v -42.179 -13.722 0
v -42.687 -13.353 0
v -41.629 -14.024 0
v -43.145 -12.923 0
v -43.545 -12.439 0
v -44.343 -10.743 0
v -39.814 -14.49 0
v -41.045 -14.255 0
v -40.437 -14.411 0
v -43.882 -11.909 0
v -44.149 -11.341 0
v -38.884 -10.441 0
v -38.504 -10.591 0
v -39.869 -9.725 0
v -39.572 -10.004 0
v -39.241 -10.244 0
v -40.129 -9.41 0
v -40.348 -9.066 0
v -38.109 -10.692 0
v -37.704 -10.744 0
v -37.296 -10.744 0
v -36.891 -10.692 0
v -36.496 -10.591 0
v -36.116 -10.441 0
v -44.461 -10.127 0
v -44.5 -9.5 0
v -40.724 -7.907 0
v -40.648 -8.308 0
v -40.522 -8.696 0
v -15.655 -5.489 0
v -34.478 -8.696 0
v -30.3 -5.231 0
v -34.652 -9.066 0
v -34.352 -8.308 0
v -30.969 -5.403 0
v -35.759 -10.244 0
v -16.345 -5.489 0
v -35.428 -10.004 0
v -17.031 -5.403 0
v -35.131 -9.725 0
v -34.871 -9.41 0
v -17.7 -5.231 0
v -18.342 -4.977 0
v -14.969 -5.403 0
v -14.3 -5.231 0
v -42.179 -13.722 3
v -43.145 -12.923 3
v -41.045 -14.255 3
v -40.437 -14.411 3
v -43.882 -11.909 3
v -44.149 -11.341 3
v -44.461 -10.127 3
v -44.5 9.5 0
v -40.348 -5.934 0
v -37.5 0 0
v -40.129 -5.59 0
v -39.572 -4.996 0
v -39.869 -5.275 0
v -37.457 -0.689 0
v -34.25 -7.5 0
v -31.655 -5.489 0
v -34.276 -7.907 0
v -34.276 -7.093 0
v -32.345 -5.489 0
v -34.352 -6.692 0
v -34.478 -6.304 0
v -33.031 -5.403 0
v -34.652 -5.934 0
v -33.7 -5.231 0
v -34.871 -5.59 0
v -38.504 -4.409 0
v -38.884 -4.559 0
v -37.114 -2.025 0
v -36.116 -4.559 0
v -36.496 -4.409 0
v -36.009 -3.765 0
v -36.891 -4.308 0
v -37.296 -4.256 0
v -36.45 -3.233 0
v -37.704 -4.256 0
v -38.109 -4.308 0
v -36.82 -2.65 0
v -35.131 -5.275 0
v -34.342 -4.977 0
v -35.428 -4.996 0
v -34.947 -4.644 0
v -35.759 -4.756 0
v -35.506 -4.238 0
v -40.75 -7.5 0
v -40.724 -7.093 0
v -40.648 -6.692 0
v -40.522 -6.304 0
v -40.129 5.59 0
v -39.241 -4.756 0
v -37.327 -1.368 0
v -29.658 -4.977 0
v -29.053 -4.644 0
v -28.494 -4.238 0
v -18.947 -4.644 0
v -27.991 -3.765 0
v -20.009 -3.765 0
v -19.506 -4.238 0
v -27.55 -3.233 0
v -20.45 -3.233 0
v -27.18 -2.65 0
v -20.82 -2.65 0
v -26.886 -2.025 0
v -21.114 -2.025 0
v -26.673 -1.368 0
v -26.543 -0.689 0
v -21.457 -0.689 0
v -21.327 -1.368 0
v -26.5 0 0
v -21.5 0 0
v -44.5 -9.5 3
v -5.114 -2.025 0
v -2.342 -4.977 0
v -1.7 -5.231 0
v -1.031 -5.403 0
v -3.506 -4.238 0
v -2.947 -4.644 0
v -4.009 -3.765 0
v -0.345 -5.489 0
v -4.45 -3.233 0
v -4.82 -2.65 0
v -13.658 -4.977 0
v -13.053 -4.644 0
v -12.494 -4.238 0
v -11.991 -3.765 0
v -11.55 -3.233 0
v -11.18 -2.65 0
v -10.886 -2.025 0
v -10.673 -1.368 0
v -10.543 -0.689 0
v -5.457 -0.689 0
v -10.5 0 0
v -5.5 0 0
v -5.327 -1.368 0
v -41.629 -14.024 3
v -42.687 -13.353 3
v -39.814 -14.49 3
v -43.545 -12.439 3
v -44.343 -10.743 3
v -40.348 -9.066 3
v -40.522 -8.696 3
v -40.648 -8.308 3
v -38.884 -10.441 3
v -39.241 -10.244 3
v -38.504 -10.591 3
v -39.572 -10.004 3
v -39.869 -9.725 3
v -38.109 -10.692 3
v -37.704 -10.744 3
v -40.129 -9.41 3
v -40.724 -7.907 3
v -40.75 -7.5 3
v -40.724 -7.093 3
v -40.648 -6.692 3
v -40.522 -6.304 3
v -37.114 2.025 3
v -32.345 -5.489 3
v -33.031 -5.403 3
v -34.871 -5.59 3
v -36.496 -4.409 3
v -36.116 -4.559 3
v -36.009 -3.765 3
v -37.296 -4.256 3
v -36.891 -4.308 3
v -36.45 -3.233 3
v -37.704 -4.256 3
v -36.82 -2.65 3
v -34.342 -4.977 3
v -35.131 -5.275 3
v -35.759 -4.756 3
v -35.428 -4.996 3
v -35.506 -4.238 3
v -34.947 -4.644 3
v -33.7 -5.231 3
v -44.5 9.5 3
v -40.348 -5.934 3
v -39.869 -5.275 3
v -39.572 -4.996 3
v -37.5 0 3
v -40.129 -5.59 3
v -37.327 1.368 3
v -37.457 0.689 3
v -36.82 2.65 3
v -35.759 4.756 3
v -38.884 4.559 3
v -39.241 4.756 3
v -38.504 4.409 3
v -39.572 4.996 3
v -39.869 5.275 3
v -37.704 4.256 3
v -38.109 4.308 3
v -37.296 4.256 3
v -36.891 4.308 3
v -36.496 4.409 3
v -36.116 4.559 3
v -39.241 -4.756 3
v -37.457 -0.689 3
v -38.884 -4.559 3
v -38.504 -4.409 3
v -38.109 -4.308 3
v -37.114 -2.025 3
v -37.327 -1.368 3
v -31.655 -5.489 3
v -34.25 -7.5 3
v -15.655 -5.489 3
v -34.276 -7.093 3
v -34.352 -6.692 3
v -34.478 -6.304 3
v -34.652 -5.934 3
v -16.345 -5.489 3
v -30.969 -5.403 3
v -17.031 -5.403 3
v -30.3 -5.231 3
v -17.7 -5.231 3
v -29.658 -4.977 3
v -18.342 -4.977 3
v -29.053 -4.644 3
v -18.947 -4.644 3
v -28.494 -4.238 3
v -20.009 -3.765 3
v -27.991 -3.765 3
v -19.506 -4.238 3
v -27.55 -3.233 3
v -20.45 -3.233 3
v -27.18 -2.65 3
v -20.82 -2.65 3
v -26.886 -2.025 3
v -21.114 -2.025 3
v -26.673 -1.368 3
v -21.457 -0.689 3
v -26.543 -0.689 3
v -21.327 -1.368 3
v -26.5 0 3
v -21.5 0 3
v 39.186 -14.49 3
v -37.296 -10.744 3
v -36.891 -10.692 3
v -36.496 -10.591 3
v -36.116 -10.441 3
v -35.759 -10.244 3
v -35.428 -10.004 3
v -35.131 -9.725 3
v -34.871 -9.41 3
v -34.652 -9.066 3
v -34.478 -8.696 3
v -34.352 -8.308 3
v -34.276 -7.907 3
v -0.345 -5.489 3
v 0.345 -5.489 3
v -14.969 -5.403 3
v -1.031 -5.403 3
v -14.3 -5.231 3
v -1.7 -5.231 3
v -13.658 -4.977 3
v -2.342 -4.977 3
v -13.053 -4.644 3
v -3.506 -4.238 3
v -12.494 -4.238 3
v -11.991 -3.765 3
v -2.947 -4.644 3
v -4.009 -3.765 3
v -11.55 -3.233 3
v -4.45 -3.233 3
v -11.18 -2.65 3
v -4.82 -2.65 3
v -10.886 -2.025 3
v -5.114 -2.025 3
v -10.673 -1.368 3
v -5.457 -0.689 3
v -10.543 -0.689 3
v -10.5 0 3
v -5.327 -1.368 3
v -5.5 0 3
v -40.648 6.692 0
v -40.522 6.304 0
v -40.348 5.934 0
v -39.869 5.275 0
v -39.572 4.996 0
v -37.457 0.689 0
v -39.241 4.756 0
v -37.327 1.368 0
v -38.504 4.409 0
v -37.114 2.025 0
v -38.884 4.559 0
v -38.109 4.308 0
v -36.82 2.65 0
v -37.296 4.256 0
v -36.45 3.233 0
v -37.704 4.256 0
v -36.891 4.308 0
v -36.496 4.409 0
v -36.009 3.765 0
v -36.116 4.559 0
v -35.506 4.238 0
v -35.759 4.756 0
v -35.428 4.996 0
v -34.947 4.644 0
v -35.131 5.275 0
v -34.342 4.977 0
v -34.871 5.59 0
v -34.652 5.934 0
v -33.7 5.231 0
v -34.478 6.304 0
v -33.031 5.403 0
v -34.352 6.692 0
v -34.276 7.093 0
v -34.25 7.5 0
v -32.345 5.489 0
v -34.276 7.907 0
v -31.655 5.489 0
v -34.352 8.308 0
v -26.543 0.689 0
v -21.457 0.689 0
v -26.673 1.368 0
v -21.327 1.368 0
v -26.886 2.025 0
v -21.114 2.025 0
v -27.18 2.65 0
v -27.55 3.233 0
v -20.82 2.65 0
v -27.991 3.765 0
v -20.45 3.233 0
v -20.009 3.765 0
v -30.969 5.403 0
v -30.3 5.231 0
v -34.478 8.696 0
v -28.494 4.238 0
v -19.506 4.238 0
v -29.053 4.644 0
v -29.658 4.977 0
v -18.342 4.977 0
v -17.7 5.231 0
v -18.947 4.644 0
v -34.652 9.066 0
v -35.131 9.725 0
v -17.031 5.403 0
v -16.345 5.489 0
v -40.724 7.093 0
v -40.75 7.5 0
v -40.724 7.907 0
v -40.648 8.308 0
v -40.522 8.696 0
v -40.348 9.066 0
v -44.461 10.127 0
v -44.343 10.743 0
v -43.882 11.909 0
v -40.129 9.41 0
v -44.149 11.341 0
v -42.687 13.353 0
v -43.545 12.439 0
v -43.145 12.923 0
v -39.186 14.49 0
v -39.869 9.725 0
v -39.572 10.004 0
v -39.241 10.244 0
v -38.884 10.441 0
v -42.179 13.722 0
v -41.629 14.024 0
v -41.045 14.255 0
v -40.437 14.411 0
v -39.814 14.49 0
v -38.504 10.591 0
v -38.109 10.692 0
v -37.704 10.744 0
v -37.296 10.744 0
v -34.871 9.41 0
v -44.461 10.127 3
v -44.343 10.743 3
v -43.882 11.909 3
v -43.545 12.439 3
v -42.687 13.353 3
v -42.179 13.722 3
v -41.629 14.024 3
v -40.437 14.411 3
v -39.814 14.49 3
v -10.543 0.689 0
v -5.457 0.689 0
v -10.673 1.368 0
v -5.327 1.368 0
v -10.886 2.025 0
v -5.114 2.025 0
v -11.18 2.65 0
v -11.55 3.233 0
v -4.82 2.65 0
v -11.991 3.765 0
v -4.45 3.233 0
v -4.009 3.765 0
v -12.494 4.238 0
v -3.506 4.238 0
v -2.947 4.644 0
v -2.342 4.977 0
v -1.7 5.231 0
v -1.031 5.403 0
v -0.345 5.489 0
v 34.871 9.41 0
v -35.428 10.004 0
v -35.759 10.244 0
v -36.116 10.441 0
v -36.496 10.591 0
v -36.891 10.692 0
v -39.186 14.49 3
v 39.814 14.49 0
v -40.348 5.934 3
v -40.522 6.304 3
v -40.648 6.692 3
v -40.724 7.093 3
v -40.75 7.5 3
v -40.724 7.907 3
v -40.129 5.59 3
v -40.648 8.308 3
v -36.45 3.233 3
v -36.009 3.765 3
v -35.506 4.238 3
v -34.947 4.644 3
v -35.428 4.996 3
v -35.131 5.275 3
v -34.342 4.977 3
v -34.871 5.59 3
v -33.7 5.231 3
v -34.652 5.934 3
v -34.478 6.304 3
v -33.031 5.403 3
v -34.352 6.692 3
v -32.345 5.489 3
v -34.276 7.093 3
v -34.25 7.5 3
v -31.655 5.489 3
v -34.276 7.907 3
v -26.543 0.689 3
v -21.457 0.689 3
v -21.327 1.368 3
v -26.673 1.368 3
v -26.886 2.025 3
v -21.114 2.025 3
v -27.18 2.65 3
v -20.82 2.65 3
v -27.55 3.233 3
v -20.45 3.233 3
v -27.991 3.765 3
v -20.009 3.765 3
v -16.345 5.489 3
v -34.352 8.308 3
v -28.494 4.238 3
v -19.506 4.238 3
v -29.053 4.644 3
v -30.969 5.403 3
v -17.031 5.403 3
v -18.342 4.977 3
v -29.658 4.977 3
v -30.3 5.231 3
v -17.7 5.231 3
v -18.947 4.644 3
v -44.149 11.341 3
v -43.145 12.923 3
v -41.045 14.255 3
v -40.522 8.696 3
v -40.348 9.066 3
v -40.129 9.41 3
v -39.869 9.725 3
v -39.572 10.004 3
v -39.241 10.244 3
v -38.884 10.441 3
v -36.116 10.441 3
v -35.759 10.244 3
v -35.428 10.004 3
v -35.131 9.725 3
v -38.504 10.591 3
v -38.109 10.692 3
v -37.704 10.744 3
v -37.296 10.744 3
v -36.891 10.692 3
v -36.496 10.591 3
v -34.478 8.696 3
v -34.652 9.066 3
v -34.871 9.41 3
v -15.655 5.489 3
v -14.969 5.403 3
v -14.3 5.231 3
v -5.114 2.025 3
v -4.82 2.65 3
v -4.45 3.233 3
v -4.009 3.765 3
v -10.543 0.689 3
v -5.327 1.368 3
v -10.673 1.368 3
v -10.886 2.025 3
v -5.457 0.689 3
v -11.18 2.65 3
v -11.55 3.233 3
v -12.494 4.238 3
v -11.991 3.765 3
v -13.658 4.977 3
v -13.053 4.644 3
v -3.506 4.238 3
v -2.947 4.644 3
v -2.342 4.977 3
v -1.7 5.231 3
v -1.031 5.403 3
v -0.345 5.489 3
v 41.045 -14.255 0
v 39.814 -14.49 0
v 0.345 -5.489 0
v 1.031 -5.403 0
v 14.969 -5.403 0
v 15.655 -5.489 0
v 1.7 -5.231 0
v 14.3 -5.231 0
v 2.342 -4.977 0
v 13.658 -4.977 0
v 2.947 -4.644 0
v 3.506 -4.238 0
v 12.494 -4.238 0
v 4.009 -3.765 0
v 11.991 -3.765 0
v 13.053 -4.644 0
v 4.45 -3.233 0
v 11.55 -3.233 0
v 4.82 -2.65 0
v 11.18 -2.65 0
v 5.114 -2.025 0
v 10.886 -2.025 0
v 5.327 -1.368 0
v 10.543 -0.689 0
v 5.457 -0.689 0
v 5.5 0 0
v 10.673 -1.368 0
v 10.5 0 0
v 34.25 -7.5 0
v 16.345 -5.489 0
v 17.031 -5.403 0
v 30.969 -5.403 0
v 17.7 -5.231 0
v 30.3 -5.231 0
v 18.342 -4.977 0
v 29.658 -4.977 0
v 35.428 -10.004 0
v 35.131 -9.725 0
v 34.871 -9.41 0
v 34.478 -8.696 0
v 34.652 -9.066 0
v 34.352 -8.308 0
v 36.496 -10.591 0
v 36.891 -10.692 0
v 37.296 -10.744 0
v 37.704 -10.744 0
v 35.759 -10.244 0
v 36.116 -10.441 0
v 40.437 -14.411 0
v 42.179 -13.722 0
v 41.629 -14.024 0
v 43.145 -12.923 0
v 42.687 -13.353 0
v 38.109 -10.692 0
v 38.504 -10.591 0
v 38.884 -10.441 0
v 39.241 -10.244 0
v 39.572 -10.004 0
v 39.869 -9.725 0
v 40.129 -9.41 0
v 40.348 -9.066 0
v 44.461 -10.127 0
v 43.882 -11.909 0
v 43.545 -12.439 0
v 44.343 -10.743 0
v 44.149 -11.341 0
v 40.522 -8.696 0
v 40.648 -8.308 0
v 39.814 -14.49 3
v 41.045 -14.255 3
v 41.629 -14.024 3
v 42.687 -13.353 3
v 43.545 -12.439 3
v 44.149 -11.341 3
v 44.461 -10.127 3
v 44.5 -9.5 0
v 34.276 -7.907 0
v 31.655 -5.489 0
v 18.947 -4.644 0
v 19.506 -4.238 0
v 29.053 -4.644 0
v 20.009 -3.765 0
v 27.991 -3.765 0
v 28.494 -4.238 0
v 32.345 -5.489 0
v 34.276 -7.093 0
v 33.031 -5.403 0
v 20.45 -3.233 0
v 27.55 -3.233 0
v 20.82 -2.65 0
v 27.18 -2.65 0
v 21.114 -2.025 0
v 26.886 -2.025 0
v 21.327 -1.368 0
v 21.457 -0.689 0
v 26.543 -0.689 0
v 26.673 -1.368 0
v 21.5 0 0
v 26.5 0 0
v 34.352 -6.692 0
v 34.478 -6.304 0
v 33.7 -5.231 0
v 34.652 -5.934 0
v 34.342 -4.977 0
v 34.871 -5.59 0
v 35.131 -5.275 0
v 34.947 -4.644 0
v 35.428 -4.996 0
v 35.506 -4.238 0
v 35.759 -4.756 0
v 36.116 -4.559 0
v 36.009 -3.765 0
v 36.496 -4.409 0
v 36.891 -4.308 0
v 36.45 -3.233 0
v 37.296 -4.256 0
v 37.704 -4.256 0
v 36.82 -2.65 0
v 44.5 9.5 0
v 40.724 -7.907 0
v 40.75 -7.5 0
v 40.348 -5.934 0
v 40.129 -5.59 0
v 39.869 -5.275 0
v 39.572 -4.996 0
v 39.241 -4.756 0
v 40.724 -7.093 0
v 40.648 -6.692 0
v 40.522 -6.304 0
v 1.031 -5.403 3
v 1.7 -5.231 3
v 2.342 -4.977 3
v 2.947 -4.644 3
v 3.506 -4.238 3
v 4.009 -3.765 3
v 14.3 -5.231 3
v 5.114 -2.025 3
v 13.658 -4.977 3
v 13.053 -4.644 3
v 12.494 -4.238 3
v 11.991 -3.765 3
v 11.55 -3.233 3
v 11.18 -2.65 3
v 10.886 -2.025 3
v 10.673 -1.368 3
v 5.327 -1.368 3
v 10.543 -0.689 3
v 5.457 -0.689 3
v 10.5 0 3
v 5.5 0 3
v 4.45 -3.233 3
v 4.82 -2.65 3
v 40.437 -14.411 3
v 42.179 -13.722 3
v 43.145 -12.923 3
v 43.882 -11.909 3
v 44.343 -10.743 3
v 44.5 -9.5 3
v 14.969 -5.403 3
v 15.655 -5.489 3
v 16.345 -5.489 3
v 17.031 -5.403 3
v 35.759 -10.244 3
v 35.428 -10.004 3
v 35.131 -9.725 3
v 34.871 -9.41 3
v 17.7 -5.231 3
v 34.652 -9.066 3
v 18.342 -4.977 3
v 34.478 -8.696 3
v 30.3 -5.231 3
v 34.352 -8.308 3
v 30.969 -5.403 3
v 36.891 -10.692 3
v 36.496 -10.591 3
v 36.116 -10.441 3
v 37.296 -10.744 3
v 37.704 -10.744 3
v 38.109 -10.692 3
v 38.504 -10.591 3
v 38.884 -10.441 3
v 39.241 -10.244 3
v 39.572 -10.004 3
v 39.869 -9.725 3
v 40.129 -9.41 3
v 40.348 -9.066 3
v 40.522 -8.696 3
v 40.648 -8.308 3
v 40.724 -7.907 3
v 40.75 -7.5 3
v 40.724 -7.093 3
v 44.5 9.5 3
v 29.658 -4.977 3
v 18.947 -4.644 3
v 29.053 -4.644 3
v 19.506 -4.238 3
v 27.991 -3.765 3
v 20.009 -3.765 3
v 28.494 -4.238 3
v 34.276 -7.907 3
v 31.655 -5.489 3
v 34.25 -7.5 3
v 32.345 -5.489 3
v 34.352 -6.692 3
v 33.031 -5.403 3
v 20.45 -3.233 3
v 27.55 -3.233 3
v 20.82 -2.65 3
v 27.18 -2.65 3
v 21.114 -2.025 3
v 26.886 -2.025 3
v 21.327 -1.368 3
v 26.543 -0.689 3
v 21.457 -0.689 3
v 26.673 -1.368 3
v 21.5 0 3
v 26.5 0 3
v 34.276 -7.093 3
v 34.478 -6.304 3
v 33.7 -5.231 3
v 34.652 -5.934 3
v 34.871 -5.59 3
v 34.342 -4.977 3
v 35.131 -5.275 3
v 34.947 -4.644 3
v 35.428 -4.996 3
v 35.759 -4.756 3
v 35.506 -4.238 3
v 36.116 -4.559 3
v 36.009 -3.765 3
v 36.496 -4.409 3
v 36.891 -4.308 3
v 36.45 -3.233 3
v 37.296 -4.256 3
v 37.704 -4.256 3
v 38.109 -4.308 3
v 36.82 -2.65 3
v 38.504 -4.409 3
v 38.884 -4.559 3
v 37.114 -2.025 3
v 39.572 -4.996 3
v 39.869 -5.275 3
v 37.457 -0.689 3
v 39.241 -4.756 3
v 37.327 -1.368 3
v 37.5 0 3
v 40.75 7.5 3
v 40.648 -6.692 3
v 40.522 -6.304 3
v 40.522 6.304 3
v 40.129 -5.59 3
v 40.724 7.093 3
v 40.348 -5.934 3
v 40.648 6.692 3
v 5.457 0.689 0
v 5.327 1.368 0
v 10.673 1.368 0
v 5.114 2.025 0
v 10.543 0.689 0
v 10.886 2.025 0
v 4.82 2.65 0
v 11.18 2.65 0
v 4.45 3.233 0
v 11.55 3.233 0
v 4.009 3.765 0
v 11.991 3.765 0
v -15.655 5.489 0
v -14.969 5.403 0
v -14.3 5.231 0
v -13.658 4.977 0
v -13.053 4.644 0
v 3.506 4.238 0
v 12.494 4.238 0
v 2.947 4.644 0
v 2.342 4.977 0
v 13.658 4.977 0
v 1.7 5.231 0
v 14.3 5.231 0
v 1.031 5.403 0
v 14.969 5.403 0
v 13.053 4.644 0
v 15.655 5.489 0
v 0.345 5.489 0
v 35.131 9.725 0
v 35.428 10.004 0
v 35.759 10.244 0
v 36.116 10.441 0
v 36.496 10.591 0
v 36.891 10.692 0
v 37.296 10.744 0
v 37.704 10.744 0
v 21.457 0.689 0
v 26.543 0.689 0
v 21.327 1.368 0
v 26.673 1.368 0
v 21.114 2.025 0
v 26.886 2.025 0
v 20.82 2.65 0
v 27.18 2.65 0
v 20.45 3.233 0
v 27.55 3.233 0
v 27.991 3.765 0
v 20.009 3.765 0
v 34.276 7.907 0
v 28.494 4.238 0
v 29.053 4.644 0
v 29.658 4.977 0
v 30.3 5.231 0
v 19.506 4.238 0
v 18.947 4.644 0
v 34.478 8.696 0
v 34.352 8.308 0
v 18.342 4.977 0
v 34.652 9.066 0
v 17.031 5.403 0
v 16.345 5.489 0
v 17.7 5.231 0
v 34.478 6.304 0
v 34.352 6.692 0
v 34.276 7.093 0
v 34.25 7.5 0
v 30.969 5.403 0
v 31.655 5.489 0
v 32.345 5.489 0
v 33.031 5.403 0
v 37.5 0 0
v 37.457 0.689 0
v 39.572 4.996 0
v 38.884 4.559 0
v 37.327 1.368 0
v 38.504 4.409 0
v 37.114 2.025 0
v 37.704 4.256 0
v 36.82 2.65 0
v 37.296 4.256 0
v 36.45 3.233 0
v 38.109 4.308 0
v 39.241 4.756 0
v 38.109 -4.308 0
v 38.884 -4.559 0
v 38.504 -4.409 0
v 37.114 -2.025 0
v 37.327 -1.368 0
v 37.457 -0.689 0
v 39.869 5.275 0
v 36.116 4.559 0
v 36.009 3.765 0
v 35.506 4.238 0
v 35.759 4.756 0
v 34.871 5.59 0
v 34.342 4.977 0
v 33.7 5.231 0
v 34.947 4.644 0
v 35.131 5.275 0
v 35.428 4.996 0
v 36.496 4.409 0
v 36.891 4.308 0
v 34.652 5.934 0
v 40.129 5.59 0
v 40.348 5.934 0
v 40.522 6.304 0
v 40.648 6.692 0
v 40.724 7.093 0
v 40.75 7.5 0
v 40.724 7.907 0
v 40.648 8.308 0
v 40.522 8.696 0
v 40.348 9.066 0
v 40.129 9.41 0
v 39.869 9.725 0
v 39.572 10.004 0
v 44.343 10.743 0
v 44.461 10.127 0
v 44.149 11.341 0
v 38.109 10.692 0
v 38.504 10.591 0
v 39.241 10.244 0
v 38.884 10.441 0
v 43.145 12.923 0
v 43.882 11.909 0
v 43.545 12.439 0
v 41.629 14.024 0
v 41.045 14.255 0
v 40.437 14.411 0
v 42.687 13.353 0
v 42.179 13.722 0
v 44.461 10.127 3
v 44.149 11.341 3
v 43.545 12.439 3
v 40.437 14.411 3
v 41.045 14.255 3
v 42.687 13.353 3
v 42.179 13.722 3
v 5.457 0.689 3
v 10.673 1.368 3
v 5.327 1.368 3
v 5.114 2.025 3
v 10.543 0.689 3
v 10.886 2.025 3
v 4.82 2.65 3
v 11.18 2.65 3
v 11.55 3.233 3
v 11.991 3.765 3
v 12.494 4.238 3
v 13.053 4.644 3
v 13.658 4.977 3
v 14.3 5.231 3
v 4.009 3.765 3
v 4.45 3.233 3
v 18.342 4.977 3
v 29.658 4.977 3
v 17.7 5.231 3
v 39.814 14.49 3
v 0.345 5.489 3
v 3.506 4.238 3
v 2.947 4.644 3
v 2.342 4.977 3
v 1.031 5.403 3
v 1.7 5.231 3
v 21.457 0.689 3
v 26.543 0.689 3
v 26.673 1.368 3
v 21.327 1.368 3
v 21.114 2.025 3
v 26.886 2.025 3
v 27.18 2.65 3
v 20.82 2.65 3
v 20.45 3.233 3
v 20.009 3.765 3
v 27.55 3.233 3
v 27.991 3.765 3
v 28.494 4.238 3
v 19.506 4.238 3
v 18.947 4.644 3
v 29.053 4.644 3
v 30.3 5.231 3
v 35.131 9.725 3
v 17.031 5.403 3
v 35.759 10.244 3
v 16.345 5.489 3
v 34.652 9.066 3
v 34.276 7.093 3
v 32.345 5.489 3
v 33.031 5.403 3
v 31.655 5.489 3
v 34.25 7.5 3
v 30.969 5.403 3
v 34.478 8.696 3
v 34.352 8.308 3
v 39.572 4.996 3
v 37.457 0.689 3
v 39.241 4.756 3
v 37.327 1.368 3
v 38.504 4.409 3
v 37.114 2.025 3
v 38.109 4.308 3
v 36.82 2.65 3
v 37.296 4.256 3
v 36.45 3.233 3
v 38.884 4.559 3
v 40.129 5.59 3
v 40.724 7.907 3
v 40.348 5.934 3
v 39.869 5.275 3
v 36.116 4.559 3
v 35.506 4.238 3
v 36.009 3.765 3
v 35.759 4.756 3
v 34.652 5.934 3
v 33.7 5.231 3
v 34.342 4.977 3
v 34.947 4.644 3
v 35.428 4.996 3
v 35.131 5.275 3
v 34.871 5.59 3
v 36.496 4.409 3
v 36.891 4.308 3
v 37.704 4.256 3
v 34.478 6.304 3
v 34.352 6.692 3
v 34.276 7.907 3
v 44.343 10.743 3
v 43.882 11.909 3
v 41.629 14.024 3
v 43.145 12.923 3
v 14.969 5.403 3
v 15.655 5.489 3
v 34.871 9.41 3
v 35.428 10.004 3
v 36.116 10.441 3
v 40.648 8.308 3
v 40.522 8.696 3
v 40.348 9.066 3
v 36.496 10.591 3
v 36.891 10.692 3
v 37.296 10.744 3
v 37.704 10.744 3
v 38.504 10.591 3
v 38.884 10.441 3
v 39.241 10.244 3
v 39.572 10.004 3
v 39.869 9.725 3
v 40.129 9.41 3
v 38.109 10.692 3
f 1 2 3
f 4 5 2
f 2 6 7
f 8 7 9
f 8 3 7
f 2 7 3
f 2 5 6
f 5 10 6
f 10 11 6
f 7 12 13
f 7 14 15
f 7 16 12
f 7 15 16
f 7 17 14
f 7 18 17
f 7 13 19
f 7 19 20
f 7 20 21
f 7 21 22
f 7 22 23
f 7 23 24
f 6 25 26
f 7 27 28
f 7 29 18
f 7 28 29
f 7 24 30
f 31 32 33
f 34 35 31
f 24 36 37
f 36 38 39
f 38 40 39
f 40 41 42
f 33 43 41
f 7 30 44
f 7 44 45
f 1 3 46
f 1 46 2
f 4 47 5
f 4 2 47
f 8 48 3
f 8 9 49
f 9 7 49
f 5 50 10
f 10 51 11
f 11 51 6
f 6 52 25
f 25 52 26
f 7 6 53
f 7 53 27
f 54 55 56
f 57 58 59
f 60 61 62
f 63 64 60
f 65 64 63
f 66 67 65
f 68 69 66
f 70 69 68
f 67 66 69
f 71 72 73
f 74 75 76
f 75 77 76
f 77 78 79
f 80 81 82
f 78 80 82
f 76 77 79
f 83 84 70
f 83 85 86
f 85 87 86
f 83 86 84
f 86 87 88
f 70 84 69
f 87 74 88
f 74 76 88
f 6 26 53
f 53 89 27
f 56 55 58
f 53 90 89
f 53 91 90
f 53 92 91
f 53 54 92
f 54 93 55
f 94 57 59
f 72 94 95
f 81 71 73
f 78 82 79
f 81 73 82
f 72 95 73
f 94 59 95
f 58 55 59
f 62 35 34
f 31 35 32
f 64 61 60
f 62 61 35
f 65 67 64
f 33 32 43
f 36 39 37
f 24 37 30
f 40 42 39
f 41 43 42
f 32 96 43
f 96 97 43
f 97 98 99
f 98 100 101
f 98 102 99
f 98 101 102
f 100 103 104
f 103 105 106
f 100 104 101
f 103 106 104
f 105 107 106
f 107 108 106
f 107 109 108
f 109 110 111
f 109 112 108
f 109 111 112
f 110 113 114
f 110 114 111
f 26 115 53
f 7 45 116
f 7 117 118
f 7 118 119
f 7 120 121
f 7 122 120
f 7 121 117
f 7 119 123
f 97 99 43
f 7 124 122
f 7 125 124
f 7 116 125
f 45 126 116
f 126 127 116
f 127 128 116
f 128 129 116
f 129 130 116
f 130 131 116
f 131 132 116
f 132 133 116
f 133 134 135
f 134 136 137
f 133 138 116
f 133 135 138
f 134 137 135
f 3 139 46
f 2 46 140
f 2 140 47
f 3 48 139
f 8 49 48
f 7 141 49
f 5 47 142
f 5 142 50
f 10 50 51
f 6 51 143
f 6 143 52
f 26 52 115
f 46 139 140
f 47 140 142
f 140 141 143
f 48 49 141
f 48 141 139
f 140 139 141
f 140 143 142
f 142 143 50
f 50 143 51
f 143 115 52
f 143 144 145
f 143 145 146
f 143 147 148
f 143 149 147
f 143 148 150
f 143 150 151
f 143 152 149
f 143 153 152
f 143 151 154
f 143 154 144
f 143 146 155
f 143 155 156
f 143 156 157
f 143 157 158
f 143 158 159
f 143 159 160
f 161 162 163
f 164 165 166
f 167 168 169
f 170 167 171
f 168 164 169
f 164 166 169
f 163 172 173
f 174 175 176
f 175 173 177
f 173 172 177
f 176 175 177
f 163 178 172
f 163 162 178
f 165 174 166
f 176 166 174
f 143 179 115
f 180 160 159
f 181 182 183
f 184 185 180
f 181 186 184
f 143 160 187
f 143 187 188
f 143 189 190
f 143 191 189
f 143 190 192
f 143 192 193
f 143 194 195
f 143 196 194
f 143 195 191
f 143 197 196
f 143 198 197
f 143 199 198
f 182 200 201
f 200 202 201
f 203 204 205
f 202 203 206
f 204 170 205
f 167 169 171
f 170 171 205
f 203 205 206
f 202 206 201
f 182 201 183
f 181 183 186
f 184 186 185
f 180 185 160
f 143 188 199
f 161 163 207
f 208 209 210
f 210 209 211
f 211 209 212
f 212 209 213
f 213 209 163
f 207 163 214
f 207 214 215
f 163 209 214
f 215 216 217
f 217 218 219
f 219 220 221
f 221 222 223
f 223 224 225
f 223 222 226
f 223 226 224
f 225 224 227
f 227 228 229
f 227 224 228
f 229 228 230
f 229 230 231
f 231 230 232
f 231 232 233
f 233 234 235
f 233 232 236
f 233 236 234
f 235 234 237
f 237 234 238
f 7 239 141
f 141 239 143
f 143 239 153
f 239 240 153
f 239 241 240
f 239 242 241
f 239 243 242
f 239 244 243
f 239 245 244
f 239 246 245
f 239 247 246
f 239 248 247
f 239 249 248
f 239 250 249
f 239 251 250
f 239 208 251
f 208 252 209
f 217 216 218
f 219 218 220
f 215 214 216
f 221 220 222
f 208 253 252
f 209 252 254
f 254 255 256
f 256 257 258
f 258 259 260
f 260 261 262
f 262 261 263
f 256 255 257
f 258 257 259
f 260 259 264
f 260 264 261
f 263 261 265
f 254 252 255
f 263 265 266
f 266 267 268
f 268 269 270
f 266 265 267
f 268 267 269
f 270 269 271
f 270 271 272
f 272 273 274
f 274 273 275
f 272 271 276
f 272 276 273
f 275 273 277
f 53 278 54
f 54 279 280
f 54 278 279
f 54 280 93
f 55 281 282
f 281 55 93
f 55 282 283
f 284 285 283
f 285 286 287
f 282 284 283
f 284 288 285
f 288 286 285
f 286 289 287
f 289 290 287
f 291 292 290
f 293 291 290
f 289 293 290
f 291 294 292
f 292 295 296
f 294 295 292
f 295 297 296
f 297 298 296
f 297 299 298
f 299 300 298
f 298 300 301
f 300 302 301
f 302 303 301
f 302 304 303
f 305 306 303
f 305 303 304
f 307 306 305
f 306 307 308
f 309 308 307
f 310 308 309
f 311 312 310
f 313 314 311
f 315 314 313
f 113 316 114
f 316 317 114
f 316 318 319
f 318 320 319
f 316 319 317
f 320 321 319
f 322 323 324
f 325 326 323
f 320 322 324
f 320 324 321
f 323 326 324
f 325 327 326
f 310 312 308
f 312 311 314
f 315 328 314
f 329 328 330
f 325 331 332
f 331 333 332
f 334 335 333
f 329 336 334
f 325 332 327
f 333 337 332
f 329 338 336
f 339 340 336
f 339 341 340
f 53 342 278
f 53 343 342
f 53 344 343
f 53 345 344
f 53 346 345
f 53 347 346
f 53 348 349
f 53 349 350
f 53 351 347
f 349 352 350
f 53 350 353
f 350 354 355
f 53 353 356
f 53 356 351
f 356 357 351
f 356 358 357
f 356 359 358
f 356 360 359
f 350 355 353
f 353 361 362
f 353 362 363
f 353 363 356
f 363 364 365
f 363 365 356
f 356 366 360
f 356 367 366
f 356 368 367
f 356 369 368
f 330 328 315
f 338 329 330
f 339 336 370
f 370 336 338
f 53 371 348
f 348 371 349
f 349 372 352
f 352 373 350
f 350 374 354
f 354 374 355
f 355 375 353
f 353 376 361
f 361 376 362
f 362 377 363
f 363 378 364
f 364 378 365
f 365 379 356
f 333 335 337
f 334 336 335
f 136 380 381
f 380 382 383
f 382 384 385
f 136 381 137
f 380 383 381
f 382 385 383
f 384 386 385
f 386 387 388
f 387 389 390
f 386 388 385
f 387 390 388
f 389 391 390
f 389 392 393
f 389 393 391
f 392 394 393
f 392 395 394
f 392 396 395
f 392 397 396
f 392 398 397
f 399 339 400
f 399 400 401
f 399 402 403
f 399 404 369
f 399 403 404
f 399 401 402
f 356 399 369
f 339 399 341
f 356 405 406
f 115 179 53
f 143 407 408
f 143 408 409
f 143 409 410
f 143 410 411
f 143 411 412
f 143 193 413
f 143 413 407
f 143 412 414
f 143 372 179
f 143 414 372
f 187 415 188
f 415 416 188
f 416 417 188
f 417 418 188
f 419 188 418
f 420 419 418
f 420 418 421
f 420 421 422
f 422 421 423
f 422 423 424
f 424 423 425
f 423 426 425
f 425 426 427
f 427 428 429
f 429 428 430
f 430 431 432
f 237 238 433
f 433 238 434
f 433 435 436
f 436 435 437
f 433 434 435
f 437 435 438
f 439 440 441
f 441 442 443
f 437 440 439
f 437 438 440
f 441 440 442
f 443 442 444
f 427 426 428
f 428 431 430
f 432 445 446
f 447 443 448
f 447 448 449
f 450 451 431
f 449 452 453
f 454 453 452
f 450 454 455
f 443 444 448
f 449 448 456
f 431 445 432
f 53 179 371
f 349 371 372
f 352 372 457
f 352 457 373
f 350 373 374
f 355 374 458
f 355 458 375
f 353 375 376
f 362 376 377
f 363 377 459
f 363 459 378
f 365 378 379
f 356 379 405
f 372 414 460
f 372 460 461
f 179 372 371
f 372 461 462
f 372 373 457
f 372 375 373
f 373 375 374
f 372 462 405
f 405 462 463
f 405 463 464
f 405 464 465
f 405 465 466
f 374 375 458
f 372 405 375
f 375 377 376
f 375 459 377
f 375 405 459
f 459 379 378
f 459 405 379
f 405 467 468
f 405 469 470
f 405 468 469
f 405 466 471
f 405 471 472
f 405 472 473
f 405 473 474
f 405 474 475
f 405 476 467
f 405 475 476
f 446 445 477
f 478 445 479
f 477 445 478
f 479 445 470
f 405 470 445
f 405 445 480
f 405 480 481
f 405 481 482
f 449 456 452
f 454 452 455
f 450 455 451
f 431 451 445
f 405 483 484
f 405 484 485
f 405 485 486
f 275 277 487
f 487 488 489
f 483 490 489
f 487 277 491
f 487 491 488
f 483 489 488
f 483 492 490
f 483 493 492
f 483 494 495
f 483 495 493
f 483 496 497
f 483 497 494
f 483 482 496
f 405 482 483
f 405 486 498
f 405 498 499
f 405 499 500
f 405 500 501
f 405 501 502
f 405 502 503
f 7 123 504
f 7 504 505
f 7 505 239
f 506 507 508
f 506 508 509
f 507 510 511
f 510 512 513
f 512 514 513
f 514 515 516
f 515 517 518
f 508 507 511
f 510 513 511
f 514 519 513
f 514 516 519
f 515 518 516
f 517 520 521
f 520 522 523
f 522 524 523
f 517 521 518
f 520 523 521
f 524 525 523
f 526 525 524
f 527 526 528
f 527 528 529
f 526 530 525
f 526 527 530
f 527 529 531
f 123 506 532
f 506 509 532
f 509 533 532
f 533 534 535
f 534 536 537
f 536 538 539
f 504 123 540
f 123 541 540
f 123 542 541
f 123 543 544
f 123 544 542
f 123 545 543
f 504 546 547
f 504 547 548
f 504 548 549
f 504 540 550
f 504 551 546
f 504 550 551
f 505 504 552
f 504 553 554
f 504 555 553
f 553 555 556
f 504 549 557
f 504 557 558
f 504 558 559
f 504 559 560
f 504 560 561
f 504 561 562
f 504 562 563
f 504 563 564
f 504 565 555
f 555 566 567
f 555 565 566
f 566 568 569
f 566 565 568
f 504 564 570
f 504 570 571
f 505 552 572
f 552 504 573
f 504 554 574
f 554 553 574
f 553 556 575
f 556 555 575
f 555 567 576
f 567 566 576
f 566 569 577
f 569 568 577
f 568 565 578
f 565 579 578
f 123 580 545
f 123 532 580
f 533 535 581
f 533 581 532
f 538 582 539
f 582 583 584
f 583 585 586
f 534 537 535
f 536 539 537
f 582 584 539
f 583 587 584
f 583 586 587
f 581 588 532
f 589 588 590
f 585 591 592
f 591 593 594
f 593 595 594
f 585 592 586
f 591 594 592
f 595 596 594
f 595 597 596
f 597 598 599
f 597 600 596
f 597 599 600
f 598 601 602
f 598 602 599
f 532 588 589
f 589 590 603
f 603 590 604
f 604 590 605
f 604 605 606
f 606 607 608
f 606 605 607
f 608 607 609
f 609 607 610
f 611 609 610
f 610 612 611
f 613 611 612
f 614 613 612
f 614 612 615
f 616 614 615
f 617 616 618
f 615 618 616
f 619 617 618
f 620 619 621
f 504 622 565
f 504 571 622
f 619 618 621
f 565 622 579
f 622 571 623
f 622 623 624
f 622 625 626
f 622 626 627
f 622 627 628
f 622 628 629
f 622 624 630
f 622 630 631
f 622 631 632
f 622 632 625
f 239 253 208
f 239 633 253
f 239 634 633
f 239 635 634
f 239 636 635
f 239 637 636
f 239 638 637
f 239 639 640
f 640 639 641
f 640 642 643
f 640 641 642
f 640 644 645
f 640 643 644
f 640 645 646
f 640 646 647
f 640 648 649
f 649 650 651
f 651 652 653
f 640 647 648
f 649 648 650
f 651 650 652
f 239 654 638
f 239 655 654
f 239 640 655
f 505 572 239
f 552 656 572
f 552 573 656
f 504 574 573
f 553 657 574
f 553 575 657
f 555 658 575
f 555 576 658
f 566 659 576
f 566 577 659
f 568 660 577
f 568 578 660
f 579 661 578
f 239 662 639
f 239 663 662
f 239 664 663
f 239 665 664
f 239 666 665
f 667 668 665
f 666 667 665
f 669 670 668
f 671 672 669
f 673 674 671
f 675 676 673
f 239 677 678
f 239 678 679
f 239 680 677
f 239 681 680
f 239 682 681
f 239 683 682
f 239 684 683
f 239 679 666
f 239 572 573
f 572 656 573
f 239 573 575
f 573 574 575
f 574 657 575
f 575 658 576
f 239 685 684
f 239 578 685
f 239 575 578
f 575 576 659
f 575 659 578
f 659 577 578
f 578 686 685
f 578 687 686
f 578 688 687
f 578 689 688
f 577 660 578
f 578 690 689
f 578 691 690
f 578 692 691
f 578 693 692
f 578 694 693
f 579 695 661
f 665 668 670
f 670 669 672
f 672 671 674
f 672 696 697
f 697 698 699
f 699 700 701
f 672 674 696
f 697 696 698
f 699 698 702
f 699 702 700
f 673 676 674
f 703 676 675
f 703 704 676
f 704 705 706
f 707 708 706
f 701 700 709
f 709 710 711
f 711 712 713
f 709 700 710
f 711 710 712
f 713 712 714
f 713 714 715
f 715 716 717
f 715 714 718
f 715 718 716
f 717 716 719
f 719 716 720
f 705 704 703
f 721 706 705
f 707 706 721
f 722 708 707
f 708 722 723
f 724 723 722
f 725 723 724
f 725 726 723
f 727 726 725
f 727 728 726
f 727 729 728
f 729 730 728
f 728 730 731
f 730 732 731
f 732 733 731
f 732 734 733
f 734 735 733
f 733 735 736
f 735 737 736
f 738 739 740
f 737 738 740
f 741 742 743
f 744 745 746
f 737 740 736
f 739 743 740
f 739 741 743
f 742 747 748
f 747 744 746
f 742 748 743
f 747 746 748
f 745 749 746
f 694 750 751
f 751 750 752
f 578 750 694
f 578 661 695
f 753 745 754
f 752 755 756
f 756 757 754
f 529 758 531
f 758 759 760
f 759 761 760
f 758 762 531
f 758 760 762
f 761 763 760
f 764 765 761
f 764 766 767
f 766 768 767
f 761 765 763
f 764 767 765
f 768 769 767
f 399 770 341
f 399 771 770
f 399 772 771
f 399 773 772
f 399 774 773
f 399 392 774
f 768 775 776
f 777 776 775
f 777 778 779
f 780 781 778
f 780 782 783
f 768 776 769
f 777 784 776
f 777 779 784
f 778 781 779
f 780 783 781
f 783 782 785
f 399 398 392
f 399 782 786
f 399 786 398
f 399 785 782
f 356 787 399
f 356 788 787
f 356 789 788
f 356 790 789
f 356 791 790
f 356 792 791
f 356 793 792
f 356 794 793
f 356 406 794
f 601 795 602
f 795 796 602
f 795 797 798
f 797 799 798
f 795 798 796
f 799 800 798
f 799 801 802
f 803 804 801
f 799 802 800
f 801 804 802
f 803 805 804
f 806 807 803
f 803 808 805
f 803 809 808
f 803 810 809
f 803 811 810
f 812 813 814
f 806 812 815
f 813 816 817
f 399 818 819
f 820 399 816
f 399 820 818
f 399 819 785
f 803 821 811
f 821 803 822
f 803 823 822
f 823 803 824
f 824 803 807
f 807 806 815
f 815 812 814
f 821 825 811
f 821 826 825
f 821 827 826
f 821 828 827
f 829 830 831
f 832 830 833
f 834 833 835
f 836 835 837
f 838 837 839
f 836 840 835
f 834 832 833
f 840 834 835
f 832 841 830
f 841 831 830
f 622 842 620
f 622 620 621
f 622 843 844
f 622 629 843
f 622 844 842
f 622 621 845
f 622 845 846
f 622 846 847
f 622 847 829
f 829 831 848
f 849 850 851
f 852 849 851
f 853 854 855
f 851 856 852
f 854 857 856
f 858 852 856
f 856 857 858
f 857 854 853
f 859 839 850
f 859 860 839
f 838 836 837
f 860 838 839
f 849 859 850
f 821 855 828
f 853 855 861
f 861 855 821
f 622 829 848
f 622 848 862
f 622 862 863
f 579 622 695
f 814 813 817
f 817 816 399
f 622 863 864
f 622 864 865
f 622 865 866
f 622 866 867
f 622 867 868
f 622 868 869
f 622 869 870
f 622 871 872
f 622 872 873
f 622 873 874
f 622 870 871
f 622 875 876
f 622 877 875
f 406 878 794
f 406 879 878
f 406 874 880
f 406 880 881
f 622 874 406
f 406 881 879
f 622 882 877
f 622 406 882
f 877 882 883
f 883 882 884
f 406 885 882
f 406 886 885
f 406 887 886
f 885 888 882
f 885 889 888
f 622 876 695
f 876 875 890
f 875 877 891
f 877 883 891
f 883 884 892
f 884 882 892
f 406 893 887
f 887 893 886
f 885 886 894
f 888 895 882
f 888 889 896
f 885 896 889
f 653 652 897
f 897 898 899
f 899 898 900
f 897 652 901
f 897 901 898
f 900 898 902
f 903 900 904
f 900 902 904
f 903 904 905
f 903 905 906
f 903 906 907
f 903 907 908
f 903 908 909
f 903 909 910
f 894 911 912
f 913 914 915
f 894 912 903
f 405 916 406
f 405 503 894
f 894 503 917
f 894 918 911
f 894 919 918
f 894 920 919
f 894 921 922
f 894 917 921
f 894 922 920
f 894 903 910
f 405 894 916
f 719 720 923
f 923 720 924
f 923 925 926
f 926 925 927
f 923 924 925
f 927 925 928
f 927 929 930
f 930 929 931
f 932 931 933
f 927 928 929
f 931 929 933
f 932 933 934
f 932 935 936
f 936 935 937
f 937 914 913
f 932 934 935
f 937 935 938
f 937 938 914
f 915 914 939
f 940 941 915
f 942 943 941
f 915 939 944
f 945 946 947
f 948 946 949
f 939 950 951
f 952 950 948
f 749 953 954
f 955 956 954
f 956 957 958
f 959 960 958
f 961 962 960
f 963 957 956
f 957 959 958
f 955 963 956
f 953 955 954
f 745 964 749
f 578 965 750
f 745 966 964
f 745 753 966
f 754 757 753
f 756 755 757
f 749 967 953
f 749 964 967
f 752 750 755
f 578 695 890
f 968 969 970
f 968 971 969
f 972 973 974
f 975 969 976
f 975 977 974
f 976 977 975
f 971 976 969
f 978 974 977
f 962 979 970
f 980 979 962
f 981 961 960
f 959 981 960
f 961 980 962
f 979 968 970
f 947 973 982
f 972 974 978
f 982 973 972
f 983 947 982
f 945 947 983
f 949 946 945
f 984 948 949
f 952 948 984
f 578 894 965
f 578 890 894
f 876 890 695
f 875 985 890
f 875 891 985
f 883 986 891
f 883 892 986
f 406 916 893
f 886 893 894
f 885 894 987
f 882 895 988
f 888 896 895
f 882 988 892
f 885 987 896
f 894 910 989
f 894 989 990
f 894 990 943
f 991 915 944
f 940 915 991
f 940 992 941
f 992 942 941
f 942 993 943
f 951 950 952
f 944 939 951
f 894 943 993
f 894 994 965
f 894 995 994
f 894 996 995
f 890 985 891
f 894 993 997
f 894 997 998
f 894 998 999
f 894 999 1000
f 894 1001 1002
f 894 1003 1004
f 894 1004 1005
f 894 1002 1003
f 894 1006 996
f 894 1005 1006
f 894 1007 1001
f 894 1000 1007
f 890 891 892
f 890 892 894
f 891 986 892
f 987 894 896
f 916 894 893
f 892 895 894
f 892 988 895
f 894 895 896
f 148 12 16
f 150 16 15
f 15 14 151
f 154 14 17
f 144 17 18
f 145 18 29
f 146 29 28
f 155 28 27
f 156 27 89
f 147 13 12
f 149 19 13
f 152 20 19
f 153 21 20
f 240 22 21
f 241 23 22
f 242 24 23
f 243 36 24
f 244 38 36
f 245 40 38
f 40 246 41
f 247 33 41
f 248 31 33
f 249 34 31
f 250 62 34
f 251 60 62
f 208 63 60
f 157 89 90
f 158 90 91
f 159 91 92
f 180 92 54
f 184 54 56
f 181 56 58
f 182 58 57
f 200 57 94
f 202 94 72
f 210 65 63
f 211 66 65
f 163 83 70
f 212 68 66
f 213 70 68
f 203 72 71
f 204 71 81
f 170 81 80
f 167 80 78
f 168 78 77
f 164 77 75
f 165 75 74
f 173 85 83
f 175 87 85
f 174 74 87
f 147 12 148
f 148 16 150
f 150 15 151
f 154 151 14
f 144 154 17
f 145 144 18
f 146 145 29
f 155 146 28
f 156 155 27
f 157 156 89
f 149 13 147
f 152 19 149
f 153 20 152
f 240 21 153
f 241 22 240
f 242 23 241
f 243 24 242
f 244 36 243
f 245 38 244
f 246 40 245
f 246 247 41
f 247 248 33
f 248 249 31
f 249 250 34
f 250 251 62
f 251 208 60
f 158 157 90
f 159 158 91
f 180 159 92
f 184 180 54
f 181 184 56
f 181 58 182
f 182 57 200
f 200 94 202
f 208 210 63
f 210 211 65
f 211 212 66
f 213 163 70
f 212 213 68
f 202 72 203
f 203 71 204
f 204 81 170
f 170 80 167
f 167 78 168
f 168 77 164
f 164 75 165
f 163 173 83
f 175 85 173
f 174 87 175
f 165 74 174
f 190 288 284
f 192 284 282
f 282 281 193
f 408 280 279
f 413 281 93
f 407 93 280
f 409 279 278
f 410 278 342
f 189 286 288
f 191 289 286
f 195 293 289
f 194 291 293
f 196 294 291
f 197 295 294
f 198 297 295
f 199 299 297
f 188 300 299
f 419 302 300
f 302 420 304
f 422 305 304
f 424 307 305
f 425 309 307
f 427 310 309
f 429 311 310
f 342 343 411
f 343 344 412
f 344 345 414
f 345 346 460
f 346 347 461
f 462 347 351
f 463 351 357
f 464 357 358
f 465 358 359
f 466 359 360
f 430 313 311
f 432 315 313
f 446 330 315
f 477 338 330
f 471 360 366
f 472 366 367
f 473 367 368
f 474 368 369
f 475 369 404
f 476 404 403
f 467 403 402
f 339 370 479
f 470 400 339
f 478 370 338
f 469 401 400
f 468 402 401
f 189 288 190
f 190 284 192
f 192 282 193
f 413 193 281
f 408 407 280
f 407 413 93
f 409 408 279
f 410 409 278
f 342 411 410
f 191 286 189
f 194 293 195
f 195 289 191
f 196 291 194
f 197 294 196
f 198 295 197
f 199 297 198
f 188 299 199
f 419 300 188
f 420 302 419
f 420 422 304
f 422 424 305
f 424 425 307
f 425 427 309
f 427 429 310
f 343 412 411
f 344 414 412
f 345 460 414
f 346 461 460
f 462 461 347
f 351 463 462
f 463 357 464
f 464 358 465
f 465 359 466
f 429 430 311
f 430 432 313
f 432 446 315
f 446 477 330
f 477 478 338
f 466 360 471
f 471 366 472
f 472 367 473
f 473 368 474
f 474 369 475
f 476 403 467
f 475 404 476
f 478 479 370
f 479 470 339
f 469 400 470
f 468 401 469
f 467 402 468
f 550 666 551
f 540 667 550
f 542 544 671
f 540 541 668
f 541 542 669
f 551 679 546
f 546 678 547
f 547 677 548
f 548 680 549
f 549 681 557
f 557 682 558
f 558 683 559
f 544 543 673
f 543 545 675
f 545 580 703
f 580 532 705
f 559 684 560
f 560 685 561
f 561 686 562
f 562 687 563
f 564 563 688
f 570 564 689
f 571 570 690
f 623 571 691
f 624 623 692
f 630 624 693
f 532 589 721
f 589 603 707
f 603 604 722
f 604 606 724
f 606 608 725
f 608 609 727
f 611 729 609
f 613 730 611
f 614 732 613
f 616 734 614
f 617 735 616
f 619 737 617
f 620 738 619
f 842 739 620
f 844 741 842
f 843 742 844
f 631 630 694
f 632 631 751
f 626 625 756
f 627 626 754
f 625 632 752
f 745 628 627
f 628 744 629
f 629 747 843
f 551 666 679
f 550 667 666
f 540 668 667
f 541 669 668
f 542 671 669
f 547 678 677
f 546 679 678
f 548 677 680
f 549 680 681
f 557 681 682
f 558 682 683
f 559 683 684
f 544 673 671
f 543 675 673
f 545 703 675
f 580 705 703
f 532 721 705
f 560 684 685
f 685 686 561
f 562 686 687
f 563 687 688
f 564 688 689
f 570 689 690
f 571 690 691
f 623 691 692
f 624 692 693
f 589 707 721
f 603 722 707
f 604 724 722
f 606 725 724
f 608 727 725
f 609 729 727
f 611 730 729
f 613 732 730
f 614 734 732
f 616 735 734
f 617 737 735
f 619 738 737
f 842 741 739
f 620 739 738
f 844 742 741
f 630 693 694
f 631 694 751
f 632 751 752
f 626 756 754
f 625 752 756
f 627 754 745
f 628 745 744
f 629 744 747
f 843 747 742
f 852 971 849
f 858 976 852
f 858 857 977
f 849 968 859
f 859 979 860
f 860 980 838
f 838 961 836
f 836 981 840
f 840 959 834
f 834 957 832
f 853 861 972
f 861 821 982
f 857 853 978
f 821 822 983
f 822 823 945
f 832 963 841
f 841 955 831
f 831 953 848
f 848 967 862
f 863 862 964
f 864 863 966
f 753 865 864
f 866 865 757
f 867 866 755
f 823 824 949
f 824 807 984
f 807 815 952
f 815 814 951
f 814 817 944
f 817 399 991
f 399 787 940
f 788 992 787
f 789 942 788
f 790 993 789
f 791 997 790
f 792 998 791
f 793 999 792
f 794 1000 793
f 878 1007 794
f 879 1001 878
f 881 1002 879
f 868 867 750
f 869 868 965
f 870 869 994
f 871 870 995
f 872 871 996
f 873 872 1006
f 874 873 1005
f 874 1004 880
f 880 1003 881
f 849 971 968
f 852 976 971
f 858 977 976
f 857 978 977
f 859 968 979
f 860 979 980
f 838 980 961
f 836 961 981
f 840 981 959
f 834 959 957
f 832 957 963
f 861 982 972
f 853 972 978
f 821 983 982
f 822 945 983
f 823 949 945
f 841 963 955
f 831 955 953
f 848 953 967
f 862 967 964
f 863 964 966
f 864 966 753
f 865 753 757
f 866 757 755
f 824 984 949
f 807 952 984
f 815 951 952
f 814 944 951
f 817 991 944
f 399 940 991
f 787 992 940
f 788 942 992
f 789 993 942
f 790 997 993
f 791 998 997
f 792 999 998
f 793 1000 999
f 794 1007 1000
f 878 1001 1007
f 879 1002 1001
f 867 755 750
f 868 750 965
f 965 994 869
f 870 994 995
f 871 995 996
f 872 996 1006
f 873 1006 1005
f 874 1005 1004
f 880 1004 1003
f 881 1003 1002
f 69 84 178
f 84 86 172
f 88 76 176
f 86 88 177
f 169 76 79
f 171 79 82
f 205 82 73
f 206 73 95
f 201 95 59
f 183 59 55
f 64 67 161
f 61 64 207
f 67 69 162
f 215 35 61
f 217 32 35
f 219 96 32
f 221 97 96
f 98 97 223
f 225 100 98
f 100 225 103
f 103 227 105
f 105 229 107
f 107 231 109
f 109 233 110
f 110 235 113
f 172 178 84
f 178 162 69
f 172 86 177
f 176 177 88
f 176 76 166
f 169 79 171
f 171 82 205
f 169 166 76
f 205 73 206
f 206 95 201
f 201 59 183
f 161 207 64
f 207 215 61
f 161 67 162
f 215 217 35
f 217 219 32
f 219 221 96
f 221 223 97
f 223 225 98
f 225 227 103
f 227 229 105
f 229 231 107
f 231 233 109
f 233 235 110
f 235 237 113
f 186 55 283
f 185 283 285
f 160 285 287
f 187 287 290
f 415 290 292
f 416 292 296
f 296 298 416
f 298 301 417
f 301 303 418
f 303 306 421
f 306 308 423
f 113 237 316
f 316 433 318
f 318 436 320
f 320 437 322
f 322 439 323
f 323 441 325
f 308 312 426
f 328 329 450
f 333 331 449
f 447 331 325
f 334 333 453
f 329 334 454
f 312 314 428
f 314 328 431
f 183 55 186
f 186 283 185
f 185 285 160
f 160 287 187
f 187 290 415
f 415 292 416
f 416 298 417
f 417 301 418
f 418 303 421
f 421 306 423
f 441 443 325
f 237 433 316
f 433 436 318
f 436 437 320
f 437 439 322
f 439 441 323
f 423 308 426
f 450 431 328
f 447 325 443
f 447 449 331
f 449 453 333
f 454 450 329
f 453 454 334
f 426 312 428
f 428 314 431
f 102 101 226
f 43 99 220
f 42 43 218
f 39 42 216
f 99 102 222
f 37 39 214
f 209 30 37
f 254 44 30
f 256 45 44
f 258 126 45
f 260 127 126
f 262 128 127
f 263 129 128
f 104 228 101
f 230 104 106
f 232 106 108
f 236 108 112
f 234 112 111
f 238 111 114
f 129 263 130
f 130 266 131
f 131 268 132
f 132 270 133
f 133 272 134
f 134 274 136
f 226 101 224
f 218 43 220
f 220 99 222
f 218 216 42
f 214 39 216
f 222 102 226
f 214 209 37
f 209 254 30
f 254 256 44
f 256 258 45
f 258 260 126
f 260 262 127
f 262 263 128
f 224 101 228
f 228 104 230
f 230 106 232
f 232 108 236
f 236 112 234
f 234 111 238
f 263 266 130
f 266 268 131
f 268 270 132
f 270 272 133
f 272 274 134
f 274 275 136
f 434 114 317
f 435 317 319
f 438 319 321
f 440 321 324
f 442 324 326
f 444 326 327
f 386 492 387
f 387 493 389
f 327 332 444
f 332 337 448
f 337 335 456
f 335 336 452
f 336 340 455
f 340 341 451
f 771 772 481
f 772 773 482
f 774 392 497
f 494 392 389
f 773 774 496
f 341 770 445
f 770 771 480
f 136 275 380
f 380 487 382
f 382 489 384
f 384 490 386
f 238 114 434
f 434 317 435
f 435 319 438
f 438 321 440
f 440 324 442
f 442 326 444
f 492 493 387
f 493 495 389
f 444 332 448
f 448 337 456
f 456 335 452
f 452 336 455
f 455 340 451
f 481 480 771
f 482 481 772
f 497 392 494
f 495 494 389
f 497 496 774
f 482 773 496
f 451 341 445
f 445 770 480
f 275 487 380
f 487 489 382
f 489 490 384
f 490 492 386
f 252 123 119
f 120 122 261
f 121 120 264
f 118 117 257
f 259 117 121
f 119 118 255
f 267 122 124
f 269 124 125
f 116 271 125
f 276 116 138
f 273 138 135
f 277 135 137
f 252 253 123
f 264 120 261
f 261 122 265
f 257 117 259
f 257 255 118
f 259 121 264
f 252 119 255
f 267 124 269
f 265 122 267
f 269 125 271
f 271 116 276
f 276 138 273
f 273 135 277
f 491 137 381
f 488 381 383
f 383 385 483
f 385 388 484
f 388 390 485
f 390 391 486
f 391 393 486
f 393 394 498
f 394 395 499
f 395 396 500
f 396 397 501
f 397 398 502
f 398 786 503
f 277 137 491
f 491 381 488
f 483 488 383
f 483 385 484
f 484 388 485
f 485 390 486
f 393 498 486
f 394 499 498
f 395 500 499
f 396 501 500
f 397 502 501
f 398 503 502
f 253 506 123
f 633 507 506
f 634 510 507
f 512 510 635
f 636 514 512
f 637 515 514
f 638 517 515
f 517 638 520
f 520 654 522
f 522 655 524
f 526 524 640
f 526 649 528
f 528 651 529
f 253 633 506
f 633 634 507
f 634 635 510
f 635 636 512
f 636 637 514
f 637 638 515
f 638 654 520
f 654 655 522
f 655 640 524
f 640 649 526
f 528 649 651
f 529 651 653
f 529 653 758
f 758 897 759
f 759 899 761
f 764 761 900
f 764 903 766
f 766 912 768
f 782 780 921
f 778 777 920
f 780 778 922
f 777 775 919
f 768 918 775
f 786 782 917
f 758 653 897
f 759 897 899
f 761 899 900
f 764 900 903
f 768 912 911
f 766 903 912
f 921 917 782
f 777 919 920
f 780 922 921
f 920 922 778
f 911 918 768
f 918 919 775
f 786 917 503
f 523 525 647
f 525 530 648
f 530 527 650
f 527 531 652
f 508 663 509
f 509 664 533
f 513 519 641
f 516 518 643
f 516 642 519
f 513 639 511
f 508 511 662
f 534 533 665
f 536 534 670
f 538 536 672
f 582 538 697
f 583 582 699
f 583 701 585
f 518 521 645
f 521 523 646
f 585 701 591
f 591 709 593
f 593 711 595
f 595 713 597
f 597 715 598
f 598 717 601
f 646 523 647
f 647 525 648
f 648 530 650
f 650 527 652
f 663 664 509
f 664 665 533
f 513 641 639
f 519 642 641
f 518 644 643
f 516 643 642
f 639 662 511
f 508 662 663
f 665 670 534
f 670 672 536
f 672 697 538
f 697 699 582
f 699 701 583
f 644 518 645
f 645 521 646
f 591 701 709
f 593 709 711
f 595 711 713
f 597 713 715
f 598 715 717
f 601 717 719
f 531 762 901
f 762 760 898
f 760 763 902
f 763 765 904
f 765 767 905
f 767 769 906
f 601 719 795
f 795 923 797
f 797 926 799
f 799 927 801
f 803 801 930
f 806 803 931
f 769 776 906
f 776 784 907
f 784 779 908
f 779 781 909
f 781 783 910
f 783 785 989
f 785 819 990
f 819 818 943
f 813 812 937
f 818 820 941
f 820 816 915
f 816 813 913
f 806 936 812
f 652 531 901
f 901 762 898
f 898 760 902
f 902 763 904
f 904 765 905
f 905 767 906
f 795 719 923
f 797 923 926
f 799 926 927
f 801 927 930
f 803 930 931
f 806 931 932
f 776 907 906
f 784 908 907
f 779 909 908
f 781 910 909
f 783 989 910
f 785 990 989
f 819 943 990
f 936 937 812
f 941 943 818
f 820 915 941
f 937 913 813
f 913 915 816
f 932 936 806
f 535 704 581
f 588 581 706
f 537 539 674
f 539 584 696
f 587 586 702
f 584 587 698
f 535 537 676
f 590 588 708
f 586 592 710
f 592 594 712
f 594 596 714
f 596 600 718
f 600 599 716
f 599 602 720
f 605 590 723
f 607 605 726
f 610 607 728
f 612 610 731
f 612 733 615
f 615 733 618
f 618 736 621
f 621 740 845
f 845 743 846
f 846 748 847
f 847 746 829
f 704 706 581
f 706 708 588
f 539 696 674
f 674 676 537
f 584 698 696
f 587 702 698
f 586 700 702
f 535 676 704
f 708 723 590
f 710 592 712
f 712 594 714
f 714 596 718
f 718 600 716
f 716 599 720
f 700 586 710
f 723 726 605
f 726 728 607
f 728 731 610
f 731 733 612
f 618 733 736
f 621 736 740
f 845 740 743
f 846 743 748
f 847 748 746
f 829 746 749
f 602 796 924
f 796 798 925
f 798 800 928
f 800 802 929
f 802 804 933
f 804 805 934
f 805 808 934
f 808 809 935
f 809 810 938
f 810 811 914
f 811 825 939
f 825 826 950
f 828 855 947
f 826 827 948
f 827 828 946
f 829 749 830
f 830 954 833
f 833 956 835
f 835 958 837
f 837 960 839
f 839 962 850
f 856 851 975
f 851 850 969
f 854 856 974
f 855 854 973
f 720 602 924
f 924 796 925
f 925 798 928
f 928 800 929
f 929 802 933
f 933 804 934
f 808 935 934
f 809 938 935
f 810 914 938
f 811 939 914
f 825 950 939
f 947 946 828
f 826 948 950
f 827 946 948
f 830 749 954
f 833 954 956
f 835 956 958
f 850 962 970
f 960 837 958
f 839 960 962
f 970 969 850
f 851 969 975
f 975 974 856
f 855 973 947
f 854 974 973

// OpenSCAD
$fn = 50;

difference() {
	union() {
		hull() {
			translate(v = [-39.5, 9.5, 0]) {
				cylinder(h = 3, r = 5);
			}
			translate(v = [39.5, 9.5, 0]) {
				cylinder(h = 3, r = 5);
			}
			translate(v = [-39.5, -9.5, 0]) {
				cylinder(h = 3, r = 5);
			}
			translate(v = [39.5, -9.5, 0]) {
				cylinder(h = 3, r = 5);
			}
		}
	}
	union() {
		translate(v = [-37.5, -7.5, -100.0]) {
			cylinder(h = 200, r = 3.25);
		}
		translate(v = [-37.5, 7.5, -100.0]) {
			cylinder(h = 200, r = 3.25);
		}
		translate(v = [37.5, -7.5, -100.0]) {
			cylinder(h = 200, r = 3.25);
		}
		translate(v = [37.5, 7.5, -100.0]) {
			cylinder(h = 200, r = 3.25);
		}
		translate(v = [-37.5, -7.5, -100.0]) {
			cylinder(h = 200, r = 1.8);
		}
		translate(v = [-37.5, 7.5, -100.0]) {
			cylinder(h = 200, r = 1.8);
		}
		translate(v = [37.5, -7.5, -100.0]) {
			cylinder(h = 200, r = 1.8);
		}
		translate(v = [37.5, 7.5, -100.0]) {
			cylinder(h = 200, r = 1.8);
		}
		translate(v = [-32.0, 0, 0.0]) {
			cylinder(h = 3, r = 5.5);
		}
		translate(v = [-16.0, 0, 0.0]) {
			cylinder(h = 3, r = 5.5);
		}
		cylinder(h = 3, r = 5.5);
		translate(v = [16.0, 0, 0.0]) {
			cylinder(h = 3, r = 5.5);
		}
		translate(v = [32.0, 0, 0.0]) {
			cylinder(h = 3, r = 5.5);
		}
	}
}
